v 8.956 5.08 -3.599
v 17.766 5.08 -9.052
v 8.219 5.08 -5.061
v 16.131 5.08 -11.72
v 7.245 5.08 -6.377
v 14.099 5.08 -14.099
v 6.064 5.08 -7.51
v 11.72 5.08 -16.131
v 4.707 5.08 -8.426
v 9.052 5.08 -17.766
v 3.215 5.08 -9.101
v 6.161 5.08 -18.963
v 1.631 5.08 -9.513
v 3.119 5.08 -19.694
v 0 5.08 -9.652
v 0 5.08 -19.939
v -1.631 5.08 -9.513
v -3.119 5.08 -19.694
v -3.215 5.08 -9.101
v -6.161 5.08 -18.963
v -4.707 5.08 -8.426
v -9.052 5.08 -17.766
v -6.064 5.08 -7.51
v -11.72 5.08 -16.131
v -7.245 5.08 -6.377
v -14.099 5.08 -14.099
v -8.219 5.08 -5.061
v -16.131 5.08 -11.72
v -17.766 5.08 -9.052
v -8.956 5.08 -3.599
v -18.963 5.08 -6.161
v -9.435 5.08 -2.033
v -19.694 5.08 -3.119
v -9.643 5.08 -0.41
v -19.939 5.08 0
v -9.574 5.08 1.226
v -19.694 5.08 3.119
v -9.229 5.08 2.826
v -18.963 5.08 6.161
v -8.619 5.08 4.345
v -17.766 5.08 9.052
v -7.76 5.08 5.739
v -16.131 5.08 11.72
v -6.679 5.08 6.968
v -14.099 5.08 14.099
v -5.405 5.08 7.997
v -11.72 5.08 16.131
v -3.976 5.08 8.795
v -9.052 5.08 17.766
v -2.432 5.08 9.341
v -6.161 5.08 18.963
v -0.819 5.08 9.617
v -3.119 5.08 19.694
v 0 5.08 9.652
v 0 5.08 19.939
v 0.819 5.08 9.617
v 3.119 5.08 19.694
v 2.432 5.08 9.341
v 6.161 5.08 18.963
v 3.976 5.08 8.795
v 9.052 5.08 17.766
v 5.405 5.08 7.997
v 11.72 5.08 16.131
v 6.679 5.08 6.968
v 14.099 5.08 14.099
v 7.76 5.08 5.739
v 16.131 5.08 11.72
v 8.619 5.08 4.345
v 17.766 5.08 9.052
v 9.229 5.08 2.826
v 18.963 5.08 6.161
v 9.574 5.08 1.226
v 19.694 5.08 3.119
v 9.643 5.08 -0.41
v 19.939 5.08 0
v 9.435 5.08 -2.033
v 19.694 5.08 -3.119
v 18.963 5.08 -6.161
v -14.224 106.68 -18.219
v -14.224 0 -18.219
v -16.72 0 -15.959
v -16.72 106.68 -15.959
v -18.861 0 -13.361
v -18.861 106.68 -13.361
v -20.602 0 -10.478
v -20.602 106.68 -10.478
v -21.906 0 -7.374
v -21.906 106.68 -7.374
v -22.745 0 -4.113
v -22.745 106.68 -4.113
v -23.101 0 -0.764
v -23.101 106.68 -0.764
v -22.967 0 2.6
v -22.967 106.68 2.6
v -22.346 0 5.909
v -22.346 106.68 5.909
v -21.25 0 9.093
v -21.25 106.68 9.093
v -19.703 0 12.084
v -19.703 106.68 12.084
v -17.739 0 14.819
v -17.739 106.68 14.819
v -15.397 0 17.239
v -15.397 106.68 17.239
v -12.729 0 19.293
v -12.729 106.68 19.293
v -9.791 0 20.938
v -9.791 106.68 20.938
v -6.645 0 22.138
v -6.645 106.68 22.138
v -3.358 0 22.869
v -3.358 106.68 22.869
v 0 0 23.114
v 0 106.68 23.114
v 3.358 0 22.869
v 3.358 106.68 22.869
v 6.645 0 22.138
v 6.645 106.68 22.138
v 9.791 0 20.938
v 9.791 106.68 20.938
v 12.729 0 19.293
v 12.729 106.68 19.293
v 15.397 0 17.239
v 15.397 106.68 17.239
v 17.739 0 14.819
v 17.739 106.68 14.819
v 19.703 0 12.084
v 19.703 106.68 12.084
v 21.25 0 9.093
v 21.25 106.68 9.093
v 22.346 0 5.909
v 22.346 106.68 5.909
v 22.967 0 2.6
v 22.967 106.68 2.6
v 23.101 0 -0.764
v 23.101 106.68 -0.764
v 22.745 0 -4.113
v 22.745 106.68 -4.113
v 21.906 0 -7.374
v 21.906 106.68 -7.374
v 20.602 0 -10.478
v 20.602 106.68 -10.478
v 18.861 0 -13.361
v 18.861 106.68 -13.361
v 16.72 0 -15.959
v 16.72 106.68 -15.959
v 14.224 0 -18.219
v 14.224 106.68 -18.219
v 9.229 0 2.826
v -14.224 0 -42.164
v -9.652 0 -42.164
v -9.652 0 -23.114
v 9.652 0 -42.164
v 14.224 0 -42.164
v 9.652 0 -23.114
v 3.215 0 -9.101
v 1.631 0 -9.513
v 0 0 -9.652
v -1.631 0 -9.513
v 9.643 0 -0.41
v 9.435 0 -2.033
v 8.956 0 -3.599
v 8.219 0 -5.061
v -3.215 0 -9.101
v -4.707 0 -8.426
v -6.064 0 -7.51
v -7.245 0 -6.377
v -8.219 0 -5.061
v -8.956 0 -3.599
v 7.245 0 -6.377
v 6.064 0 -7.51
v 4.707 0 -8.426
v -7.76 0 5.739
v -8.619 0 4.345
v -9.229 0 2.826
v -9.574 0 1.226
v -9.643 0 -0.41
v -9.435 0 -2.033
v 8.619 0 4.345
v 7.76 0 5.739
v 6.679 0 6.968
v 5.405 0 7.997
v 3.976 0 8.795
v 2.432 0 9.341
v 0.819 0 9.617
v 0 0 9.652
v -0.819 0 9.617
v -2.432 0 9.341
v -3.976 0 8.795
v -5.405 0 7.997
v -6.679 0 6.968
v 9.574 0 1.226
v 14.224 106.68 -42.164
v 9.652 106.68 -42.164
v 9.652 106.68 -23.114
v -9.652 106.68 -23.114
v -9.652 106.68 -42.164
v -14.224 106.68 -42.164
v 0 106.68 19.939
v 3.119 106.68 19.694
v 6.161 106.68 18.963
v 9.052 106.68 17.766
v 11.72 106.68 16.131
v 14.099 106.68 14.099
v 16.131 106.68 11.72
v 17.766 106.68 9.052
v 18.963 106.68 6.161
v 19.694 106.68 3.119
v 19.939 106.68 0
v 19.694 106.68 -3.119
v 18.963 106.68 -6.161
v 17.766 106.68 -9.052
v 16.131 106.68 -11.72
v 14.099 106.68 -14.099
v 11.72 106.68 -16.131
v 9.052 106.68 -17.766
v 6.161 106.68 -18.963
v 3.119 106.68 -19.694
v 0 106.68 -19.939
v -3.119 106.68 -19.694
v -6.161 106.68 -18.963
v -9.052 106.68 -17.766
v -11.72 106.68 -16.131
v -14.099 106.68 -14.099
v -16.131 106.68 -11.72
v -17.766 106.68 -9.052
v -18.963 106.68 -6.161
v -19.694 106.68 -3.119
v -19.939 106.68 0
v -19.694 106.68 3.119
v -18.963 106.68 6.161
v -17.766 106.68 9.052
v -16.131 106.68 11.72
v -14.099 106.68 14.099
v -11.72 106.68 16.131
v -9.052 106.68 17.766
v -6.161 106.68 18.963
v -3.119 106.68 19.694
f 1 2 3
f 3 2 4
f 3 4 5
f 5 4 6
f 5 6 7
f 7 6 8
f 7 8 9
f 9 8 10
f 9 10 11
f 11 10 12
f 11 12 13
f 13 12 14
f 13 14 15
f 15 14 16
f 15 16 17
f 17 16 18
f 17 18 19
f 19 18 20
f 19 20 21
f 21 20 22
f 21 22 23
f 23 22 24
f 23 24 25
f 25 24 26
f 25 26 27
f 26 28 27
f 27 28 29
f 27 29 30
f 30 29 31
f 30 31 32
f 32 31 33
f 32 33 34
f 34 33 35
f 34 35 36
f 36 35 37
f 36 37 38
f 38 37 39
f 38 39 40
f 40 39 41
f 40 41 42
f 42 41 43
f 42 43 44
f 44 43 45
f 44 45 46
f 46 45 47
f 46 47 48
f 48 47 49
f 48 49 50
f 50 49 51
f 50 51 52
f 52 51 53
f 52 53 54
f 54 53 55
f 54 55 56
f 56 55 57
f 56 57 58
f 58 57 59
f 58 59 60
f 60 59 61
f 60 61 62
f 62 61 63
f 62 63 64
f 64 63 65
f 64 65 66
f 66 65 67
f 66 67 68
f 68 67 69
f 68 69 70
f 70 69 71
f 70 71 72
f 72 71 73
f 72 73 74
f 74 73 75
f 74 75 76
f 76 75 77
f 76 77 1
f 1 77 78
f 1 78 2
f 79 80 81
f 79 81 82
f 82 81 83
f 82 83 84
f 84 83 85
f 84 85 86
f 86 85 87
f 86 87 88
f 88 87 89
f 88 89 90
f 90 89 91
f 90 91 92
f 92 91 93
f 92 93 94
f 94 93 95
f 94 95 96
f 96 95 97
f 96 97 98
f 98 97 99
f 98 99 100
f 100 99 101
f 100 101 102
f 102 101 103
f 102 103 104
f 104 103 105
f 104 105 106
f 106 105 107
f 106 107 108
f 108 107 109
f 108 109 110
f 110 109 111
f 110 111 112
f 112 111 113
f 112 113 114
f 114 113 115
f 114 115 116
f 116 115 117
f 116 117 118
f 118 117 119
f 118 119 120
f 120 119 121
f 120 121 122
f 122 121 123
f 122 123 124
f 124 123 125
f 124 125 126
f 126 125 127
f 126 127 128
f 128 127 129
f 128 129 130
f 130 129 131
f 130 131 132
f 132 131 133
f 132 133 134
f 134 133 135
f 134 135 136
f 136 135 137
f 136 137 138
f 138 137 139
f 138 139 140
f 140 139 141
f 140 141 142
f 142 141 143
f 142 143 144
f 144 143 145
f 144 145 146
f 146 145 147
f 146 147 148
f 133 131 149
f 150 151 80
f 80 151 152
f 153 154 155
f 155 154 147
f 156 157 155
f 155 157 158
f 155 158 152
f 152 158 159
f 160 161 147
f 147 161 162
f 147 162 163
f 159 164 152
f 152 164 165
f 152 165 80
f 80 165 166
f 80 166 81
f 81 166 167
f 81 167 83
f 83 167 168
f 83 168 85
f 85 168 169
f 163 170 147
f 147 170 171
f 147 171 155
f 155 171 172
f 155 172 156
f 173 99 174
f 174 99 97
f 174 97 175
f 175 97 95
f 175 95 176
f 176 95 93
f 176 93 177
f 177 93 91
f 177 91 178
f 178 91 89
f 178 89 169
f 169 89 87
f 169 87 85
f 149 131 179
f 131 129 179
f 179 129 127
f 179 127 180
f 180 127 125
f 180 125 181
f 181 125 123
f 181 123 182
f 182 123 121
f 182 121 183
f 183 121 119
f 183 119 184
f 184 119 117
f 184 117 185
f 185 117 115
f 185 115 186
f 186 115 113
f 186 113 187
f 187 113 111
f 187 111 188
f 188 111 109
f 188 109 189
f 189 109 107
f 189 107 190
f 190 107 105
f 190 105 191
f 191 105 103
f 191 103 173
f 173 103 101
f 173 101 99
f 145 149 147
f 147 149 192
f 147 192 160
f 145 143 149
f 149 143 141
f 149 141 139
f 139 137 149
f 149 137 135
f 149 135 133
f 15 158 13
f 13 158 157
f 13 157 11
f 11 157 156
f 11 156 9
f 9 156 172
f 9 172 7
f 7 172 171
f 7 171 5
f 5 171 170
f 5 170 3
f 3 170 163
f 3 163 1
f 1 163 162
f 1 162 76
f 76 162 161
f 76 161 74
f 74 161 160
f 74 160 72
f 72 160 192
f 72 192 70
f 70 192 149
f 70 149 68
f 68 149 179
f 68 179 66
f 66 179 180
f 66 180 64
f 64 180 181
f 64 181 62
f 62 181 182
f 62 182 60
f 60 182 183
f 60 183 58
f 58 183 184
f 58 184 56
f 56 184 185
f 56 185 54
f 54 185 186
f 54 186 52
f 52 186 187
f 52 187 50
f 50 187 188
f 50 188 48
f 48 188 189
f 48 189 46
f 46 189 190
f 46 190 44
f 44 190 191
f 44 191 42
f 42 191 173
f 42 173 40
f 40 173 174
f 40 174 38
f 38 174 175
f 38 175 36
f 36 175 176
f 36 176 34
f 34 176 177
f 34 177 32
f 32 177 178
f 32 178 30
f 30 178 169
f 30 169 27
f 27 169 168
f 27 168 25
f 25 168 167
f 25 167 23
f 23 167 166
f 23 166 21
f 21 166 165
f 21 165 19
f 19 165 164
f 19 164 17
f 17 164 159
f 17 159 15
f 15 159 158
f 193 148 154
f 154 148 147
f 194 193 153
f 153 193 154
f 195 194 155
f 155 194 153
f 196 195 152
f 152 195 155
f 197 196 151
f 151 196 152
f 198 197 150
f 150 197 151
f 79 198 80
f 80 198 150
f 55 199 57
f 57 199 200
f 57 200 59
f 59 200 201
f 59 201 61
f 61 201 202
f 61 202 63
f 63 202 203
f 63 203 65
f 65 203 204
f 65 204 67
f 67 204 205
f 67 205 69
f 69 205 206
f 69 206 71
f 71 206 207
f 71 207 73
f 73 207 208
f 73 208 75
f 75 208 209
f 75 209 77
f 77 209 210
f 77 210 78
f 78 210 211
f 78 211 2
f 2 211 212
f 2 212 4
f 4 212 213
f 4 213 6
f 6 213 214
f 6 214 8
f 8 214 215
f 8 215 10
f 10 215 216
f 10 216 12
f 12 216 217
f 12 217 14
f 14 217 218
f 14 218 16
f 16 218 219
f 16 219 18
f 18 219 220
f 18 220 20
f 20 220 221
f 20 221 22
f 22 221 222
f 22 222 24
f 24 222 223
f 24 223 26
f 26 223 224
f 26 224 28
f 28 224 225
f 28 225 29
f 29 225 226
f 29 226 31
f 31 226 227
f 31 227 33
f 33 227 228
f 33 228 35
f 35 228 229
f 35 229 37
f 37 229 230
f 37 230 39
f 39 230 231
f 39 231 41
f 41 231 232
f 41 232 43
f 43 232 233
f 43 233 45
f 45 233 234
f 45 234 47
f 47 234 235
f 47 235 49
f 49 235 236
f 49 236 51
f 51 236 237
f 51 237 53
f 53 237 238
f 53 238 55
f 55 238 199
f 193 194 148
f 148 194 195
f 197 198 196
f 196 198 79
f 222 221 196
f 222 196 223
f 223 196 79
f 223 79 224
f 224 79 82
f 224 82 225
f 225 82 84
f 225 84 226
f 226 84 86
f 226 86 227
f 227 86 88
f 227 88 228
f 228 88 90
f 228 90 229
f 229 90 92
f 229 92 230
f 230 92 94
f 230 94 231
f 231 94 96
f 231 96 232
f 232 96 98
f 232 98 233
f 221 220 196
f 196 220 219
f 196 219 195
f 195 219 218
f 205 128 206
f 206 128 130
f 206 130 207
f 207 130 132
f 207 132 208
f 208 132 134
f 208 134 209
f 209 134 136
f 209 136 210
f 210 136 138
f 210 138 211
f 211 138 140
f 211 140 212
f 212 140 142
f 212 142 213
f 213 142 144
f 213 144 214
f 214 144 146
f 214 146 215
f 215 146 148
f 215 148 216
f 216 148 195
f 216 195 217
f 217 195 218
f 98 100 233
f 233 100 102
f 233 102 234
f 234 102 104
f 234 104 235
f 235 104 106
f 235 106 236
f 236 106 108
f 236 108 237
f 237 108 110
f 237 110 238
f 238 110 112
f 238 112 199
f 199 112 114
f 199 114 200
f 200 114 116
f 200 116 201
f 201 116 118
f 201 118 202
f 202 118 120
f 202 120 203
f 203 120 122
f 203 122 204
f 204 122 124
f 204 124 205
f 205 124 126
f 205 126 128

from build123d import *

# Parameters (mm, degrees)
SKETCH1_R                       = 23.114
SKETCH1_R_2                     = 9.652
BOSS_EXTRUDE1_DEPTH             = 5.08
SKETCH2_R                       = 19.939
BOSS_EXTRUDE2_DEPTH             = 101.6
BOSS_EXTRUDE2_DIRECTION_2_REACH = 35.081


with BuildPart() as part:
    # Sketch1 → Boss-Extrude1 (new body)
    with BuildSketch(Plane(origin=(0, 0, 0), x_dir=(1, 0, 0), z_dir=(0, 1, 0))):
        with Locations(Location((0, 0, 0), (0, 0, 270))):
            Circle(SKETCH1_R)
        with Locations(Location((0, 0, 0), (0, 0, 270))):
            Circle(SKETCH1_R_2, mode=Mode.SUBTRACT)
    extrude(amount=BOSS_EXTRUDE1_DEPTH)

    # Sketch2 → Boss-Extrude2 (add)
    with BuildSketch(Plane(origin=(0, 5.08, 0), x_dir=(1, 0, 0), z_dir=(0, 1, 0))):
        with BuildLine():
            Line((-14.224, 18.219078462), (-14.224, 42.164))
            Line((-14.224, 42.164), (-9.652, 42.164))
            Line((-9.652, 42.164), (-9.652, 23.114))
            Line((-9.652, 23.114), (9.652, 23.114))
            Line((9.652, 23.114), (9.652, 42.164))
            Line((9.652, 42.164), (14.224, 42.164))
            Line((14.224, 42.164), (14.224, 18.219078462))
            ThreePointArc((14.224, 18.219078462), (0, -23.114), (-14.224, 18.219078462))
        make_face()
        with Locations(Location((0, 0, 0), (0, 0, 270))):
            Circle(SKETCH2_R, mode=Mode.SUBTRACT)
    extrude(amount=BOSS_EXTRUDE2_DEPTH)

    # Boss-Extrude2 direction 2: up to this face of the body (flat: up to its plane)
    boss_extrude2_direction_2_end = Plane(part.part.faces().sort_by_distance((0, 0, -22.460237354))[0])
    # Sketch2 → Boss-Extrude2 direction 2 (add, up to the picked face)
    with BuildSketch(Plane(origin=(0, 5.08, 0), x_dir=(1, 0, 0), z_dir=(0, 1, 0)), mode=Mode.PRIVATE) as boss_extrude2_direction_2_sk1:
        with BuildLine():
            Line((-14.224, 18.219078462), (-14.224, 42.164))
            Line((-14.224, 42.164), (-9.652, 42.164))
            Line((-9.652, 42.164), (-9.652, 23.114))
            Line((-9.652, 23.114), (9.652, 23.114))
            Line((9.652, 23.114), (9.652, 42.164))
            Line((9.652, 42.164), (14.224, 42.164))
            Line((14.224, 42.164), (14.224, 18.219078462))
            ThreePointArc((14.224, 18.219078462), (0, -23.114), (-14.224, 18.219078462))
        make_face()
        with Locations(Location((0, 0, 0), (0, 0, 270))):
            Circle(SKETCH2_R, mode=Mode.SUBTRACT)
    boss_extrude2_direction_2_tool1 = split(extrude(boss_extrude2_direction_2_sk1.sketch, amount=-BOSS_EXTRUDE2_DIRECTION_2_REACH, mode=Mode.PRIVATE), bisect_by=boss_extrude2_direction_2_end, keep=Keep.BOTH, mode=Mode.PRIVATE)
    add(boss_extrude2_direction_2_tool1.solids().sort_by(Axis((-13.42411, 5.08, -30.191539), (0, -1, 0)))[0])


solid = part.part
